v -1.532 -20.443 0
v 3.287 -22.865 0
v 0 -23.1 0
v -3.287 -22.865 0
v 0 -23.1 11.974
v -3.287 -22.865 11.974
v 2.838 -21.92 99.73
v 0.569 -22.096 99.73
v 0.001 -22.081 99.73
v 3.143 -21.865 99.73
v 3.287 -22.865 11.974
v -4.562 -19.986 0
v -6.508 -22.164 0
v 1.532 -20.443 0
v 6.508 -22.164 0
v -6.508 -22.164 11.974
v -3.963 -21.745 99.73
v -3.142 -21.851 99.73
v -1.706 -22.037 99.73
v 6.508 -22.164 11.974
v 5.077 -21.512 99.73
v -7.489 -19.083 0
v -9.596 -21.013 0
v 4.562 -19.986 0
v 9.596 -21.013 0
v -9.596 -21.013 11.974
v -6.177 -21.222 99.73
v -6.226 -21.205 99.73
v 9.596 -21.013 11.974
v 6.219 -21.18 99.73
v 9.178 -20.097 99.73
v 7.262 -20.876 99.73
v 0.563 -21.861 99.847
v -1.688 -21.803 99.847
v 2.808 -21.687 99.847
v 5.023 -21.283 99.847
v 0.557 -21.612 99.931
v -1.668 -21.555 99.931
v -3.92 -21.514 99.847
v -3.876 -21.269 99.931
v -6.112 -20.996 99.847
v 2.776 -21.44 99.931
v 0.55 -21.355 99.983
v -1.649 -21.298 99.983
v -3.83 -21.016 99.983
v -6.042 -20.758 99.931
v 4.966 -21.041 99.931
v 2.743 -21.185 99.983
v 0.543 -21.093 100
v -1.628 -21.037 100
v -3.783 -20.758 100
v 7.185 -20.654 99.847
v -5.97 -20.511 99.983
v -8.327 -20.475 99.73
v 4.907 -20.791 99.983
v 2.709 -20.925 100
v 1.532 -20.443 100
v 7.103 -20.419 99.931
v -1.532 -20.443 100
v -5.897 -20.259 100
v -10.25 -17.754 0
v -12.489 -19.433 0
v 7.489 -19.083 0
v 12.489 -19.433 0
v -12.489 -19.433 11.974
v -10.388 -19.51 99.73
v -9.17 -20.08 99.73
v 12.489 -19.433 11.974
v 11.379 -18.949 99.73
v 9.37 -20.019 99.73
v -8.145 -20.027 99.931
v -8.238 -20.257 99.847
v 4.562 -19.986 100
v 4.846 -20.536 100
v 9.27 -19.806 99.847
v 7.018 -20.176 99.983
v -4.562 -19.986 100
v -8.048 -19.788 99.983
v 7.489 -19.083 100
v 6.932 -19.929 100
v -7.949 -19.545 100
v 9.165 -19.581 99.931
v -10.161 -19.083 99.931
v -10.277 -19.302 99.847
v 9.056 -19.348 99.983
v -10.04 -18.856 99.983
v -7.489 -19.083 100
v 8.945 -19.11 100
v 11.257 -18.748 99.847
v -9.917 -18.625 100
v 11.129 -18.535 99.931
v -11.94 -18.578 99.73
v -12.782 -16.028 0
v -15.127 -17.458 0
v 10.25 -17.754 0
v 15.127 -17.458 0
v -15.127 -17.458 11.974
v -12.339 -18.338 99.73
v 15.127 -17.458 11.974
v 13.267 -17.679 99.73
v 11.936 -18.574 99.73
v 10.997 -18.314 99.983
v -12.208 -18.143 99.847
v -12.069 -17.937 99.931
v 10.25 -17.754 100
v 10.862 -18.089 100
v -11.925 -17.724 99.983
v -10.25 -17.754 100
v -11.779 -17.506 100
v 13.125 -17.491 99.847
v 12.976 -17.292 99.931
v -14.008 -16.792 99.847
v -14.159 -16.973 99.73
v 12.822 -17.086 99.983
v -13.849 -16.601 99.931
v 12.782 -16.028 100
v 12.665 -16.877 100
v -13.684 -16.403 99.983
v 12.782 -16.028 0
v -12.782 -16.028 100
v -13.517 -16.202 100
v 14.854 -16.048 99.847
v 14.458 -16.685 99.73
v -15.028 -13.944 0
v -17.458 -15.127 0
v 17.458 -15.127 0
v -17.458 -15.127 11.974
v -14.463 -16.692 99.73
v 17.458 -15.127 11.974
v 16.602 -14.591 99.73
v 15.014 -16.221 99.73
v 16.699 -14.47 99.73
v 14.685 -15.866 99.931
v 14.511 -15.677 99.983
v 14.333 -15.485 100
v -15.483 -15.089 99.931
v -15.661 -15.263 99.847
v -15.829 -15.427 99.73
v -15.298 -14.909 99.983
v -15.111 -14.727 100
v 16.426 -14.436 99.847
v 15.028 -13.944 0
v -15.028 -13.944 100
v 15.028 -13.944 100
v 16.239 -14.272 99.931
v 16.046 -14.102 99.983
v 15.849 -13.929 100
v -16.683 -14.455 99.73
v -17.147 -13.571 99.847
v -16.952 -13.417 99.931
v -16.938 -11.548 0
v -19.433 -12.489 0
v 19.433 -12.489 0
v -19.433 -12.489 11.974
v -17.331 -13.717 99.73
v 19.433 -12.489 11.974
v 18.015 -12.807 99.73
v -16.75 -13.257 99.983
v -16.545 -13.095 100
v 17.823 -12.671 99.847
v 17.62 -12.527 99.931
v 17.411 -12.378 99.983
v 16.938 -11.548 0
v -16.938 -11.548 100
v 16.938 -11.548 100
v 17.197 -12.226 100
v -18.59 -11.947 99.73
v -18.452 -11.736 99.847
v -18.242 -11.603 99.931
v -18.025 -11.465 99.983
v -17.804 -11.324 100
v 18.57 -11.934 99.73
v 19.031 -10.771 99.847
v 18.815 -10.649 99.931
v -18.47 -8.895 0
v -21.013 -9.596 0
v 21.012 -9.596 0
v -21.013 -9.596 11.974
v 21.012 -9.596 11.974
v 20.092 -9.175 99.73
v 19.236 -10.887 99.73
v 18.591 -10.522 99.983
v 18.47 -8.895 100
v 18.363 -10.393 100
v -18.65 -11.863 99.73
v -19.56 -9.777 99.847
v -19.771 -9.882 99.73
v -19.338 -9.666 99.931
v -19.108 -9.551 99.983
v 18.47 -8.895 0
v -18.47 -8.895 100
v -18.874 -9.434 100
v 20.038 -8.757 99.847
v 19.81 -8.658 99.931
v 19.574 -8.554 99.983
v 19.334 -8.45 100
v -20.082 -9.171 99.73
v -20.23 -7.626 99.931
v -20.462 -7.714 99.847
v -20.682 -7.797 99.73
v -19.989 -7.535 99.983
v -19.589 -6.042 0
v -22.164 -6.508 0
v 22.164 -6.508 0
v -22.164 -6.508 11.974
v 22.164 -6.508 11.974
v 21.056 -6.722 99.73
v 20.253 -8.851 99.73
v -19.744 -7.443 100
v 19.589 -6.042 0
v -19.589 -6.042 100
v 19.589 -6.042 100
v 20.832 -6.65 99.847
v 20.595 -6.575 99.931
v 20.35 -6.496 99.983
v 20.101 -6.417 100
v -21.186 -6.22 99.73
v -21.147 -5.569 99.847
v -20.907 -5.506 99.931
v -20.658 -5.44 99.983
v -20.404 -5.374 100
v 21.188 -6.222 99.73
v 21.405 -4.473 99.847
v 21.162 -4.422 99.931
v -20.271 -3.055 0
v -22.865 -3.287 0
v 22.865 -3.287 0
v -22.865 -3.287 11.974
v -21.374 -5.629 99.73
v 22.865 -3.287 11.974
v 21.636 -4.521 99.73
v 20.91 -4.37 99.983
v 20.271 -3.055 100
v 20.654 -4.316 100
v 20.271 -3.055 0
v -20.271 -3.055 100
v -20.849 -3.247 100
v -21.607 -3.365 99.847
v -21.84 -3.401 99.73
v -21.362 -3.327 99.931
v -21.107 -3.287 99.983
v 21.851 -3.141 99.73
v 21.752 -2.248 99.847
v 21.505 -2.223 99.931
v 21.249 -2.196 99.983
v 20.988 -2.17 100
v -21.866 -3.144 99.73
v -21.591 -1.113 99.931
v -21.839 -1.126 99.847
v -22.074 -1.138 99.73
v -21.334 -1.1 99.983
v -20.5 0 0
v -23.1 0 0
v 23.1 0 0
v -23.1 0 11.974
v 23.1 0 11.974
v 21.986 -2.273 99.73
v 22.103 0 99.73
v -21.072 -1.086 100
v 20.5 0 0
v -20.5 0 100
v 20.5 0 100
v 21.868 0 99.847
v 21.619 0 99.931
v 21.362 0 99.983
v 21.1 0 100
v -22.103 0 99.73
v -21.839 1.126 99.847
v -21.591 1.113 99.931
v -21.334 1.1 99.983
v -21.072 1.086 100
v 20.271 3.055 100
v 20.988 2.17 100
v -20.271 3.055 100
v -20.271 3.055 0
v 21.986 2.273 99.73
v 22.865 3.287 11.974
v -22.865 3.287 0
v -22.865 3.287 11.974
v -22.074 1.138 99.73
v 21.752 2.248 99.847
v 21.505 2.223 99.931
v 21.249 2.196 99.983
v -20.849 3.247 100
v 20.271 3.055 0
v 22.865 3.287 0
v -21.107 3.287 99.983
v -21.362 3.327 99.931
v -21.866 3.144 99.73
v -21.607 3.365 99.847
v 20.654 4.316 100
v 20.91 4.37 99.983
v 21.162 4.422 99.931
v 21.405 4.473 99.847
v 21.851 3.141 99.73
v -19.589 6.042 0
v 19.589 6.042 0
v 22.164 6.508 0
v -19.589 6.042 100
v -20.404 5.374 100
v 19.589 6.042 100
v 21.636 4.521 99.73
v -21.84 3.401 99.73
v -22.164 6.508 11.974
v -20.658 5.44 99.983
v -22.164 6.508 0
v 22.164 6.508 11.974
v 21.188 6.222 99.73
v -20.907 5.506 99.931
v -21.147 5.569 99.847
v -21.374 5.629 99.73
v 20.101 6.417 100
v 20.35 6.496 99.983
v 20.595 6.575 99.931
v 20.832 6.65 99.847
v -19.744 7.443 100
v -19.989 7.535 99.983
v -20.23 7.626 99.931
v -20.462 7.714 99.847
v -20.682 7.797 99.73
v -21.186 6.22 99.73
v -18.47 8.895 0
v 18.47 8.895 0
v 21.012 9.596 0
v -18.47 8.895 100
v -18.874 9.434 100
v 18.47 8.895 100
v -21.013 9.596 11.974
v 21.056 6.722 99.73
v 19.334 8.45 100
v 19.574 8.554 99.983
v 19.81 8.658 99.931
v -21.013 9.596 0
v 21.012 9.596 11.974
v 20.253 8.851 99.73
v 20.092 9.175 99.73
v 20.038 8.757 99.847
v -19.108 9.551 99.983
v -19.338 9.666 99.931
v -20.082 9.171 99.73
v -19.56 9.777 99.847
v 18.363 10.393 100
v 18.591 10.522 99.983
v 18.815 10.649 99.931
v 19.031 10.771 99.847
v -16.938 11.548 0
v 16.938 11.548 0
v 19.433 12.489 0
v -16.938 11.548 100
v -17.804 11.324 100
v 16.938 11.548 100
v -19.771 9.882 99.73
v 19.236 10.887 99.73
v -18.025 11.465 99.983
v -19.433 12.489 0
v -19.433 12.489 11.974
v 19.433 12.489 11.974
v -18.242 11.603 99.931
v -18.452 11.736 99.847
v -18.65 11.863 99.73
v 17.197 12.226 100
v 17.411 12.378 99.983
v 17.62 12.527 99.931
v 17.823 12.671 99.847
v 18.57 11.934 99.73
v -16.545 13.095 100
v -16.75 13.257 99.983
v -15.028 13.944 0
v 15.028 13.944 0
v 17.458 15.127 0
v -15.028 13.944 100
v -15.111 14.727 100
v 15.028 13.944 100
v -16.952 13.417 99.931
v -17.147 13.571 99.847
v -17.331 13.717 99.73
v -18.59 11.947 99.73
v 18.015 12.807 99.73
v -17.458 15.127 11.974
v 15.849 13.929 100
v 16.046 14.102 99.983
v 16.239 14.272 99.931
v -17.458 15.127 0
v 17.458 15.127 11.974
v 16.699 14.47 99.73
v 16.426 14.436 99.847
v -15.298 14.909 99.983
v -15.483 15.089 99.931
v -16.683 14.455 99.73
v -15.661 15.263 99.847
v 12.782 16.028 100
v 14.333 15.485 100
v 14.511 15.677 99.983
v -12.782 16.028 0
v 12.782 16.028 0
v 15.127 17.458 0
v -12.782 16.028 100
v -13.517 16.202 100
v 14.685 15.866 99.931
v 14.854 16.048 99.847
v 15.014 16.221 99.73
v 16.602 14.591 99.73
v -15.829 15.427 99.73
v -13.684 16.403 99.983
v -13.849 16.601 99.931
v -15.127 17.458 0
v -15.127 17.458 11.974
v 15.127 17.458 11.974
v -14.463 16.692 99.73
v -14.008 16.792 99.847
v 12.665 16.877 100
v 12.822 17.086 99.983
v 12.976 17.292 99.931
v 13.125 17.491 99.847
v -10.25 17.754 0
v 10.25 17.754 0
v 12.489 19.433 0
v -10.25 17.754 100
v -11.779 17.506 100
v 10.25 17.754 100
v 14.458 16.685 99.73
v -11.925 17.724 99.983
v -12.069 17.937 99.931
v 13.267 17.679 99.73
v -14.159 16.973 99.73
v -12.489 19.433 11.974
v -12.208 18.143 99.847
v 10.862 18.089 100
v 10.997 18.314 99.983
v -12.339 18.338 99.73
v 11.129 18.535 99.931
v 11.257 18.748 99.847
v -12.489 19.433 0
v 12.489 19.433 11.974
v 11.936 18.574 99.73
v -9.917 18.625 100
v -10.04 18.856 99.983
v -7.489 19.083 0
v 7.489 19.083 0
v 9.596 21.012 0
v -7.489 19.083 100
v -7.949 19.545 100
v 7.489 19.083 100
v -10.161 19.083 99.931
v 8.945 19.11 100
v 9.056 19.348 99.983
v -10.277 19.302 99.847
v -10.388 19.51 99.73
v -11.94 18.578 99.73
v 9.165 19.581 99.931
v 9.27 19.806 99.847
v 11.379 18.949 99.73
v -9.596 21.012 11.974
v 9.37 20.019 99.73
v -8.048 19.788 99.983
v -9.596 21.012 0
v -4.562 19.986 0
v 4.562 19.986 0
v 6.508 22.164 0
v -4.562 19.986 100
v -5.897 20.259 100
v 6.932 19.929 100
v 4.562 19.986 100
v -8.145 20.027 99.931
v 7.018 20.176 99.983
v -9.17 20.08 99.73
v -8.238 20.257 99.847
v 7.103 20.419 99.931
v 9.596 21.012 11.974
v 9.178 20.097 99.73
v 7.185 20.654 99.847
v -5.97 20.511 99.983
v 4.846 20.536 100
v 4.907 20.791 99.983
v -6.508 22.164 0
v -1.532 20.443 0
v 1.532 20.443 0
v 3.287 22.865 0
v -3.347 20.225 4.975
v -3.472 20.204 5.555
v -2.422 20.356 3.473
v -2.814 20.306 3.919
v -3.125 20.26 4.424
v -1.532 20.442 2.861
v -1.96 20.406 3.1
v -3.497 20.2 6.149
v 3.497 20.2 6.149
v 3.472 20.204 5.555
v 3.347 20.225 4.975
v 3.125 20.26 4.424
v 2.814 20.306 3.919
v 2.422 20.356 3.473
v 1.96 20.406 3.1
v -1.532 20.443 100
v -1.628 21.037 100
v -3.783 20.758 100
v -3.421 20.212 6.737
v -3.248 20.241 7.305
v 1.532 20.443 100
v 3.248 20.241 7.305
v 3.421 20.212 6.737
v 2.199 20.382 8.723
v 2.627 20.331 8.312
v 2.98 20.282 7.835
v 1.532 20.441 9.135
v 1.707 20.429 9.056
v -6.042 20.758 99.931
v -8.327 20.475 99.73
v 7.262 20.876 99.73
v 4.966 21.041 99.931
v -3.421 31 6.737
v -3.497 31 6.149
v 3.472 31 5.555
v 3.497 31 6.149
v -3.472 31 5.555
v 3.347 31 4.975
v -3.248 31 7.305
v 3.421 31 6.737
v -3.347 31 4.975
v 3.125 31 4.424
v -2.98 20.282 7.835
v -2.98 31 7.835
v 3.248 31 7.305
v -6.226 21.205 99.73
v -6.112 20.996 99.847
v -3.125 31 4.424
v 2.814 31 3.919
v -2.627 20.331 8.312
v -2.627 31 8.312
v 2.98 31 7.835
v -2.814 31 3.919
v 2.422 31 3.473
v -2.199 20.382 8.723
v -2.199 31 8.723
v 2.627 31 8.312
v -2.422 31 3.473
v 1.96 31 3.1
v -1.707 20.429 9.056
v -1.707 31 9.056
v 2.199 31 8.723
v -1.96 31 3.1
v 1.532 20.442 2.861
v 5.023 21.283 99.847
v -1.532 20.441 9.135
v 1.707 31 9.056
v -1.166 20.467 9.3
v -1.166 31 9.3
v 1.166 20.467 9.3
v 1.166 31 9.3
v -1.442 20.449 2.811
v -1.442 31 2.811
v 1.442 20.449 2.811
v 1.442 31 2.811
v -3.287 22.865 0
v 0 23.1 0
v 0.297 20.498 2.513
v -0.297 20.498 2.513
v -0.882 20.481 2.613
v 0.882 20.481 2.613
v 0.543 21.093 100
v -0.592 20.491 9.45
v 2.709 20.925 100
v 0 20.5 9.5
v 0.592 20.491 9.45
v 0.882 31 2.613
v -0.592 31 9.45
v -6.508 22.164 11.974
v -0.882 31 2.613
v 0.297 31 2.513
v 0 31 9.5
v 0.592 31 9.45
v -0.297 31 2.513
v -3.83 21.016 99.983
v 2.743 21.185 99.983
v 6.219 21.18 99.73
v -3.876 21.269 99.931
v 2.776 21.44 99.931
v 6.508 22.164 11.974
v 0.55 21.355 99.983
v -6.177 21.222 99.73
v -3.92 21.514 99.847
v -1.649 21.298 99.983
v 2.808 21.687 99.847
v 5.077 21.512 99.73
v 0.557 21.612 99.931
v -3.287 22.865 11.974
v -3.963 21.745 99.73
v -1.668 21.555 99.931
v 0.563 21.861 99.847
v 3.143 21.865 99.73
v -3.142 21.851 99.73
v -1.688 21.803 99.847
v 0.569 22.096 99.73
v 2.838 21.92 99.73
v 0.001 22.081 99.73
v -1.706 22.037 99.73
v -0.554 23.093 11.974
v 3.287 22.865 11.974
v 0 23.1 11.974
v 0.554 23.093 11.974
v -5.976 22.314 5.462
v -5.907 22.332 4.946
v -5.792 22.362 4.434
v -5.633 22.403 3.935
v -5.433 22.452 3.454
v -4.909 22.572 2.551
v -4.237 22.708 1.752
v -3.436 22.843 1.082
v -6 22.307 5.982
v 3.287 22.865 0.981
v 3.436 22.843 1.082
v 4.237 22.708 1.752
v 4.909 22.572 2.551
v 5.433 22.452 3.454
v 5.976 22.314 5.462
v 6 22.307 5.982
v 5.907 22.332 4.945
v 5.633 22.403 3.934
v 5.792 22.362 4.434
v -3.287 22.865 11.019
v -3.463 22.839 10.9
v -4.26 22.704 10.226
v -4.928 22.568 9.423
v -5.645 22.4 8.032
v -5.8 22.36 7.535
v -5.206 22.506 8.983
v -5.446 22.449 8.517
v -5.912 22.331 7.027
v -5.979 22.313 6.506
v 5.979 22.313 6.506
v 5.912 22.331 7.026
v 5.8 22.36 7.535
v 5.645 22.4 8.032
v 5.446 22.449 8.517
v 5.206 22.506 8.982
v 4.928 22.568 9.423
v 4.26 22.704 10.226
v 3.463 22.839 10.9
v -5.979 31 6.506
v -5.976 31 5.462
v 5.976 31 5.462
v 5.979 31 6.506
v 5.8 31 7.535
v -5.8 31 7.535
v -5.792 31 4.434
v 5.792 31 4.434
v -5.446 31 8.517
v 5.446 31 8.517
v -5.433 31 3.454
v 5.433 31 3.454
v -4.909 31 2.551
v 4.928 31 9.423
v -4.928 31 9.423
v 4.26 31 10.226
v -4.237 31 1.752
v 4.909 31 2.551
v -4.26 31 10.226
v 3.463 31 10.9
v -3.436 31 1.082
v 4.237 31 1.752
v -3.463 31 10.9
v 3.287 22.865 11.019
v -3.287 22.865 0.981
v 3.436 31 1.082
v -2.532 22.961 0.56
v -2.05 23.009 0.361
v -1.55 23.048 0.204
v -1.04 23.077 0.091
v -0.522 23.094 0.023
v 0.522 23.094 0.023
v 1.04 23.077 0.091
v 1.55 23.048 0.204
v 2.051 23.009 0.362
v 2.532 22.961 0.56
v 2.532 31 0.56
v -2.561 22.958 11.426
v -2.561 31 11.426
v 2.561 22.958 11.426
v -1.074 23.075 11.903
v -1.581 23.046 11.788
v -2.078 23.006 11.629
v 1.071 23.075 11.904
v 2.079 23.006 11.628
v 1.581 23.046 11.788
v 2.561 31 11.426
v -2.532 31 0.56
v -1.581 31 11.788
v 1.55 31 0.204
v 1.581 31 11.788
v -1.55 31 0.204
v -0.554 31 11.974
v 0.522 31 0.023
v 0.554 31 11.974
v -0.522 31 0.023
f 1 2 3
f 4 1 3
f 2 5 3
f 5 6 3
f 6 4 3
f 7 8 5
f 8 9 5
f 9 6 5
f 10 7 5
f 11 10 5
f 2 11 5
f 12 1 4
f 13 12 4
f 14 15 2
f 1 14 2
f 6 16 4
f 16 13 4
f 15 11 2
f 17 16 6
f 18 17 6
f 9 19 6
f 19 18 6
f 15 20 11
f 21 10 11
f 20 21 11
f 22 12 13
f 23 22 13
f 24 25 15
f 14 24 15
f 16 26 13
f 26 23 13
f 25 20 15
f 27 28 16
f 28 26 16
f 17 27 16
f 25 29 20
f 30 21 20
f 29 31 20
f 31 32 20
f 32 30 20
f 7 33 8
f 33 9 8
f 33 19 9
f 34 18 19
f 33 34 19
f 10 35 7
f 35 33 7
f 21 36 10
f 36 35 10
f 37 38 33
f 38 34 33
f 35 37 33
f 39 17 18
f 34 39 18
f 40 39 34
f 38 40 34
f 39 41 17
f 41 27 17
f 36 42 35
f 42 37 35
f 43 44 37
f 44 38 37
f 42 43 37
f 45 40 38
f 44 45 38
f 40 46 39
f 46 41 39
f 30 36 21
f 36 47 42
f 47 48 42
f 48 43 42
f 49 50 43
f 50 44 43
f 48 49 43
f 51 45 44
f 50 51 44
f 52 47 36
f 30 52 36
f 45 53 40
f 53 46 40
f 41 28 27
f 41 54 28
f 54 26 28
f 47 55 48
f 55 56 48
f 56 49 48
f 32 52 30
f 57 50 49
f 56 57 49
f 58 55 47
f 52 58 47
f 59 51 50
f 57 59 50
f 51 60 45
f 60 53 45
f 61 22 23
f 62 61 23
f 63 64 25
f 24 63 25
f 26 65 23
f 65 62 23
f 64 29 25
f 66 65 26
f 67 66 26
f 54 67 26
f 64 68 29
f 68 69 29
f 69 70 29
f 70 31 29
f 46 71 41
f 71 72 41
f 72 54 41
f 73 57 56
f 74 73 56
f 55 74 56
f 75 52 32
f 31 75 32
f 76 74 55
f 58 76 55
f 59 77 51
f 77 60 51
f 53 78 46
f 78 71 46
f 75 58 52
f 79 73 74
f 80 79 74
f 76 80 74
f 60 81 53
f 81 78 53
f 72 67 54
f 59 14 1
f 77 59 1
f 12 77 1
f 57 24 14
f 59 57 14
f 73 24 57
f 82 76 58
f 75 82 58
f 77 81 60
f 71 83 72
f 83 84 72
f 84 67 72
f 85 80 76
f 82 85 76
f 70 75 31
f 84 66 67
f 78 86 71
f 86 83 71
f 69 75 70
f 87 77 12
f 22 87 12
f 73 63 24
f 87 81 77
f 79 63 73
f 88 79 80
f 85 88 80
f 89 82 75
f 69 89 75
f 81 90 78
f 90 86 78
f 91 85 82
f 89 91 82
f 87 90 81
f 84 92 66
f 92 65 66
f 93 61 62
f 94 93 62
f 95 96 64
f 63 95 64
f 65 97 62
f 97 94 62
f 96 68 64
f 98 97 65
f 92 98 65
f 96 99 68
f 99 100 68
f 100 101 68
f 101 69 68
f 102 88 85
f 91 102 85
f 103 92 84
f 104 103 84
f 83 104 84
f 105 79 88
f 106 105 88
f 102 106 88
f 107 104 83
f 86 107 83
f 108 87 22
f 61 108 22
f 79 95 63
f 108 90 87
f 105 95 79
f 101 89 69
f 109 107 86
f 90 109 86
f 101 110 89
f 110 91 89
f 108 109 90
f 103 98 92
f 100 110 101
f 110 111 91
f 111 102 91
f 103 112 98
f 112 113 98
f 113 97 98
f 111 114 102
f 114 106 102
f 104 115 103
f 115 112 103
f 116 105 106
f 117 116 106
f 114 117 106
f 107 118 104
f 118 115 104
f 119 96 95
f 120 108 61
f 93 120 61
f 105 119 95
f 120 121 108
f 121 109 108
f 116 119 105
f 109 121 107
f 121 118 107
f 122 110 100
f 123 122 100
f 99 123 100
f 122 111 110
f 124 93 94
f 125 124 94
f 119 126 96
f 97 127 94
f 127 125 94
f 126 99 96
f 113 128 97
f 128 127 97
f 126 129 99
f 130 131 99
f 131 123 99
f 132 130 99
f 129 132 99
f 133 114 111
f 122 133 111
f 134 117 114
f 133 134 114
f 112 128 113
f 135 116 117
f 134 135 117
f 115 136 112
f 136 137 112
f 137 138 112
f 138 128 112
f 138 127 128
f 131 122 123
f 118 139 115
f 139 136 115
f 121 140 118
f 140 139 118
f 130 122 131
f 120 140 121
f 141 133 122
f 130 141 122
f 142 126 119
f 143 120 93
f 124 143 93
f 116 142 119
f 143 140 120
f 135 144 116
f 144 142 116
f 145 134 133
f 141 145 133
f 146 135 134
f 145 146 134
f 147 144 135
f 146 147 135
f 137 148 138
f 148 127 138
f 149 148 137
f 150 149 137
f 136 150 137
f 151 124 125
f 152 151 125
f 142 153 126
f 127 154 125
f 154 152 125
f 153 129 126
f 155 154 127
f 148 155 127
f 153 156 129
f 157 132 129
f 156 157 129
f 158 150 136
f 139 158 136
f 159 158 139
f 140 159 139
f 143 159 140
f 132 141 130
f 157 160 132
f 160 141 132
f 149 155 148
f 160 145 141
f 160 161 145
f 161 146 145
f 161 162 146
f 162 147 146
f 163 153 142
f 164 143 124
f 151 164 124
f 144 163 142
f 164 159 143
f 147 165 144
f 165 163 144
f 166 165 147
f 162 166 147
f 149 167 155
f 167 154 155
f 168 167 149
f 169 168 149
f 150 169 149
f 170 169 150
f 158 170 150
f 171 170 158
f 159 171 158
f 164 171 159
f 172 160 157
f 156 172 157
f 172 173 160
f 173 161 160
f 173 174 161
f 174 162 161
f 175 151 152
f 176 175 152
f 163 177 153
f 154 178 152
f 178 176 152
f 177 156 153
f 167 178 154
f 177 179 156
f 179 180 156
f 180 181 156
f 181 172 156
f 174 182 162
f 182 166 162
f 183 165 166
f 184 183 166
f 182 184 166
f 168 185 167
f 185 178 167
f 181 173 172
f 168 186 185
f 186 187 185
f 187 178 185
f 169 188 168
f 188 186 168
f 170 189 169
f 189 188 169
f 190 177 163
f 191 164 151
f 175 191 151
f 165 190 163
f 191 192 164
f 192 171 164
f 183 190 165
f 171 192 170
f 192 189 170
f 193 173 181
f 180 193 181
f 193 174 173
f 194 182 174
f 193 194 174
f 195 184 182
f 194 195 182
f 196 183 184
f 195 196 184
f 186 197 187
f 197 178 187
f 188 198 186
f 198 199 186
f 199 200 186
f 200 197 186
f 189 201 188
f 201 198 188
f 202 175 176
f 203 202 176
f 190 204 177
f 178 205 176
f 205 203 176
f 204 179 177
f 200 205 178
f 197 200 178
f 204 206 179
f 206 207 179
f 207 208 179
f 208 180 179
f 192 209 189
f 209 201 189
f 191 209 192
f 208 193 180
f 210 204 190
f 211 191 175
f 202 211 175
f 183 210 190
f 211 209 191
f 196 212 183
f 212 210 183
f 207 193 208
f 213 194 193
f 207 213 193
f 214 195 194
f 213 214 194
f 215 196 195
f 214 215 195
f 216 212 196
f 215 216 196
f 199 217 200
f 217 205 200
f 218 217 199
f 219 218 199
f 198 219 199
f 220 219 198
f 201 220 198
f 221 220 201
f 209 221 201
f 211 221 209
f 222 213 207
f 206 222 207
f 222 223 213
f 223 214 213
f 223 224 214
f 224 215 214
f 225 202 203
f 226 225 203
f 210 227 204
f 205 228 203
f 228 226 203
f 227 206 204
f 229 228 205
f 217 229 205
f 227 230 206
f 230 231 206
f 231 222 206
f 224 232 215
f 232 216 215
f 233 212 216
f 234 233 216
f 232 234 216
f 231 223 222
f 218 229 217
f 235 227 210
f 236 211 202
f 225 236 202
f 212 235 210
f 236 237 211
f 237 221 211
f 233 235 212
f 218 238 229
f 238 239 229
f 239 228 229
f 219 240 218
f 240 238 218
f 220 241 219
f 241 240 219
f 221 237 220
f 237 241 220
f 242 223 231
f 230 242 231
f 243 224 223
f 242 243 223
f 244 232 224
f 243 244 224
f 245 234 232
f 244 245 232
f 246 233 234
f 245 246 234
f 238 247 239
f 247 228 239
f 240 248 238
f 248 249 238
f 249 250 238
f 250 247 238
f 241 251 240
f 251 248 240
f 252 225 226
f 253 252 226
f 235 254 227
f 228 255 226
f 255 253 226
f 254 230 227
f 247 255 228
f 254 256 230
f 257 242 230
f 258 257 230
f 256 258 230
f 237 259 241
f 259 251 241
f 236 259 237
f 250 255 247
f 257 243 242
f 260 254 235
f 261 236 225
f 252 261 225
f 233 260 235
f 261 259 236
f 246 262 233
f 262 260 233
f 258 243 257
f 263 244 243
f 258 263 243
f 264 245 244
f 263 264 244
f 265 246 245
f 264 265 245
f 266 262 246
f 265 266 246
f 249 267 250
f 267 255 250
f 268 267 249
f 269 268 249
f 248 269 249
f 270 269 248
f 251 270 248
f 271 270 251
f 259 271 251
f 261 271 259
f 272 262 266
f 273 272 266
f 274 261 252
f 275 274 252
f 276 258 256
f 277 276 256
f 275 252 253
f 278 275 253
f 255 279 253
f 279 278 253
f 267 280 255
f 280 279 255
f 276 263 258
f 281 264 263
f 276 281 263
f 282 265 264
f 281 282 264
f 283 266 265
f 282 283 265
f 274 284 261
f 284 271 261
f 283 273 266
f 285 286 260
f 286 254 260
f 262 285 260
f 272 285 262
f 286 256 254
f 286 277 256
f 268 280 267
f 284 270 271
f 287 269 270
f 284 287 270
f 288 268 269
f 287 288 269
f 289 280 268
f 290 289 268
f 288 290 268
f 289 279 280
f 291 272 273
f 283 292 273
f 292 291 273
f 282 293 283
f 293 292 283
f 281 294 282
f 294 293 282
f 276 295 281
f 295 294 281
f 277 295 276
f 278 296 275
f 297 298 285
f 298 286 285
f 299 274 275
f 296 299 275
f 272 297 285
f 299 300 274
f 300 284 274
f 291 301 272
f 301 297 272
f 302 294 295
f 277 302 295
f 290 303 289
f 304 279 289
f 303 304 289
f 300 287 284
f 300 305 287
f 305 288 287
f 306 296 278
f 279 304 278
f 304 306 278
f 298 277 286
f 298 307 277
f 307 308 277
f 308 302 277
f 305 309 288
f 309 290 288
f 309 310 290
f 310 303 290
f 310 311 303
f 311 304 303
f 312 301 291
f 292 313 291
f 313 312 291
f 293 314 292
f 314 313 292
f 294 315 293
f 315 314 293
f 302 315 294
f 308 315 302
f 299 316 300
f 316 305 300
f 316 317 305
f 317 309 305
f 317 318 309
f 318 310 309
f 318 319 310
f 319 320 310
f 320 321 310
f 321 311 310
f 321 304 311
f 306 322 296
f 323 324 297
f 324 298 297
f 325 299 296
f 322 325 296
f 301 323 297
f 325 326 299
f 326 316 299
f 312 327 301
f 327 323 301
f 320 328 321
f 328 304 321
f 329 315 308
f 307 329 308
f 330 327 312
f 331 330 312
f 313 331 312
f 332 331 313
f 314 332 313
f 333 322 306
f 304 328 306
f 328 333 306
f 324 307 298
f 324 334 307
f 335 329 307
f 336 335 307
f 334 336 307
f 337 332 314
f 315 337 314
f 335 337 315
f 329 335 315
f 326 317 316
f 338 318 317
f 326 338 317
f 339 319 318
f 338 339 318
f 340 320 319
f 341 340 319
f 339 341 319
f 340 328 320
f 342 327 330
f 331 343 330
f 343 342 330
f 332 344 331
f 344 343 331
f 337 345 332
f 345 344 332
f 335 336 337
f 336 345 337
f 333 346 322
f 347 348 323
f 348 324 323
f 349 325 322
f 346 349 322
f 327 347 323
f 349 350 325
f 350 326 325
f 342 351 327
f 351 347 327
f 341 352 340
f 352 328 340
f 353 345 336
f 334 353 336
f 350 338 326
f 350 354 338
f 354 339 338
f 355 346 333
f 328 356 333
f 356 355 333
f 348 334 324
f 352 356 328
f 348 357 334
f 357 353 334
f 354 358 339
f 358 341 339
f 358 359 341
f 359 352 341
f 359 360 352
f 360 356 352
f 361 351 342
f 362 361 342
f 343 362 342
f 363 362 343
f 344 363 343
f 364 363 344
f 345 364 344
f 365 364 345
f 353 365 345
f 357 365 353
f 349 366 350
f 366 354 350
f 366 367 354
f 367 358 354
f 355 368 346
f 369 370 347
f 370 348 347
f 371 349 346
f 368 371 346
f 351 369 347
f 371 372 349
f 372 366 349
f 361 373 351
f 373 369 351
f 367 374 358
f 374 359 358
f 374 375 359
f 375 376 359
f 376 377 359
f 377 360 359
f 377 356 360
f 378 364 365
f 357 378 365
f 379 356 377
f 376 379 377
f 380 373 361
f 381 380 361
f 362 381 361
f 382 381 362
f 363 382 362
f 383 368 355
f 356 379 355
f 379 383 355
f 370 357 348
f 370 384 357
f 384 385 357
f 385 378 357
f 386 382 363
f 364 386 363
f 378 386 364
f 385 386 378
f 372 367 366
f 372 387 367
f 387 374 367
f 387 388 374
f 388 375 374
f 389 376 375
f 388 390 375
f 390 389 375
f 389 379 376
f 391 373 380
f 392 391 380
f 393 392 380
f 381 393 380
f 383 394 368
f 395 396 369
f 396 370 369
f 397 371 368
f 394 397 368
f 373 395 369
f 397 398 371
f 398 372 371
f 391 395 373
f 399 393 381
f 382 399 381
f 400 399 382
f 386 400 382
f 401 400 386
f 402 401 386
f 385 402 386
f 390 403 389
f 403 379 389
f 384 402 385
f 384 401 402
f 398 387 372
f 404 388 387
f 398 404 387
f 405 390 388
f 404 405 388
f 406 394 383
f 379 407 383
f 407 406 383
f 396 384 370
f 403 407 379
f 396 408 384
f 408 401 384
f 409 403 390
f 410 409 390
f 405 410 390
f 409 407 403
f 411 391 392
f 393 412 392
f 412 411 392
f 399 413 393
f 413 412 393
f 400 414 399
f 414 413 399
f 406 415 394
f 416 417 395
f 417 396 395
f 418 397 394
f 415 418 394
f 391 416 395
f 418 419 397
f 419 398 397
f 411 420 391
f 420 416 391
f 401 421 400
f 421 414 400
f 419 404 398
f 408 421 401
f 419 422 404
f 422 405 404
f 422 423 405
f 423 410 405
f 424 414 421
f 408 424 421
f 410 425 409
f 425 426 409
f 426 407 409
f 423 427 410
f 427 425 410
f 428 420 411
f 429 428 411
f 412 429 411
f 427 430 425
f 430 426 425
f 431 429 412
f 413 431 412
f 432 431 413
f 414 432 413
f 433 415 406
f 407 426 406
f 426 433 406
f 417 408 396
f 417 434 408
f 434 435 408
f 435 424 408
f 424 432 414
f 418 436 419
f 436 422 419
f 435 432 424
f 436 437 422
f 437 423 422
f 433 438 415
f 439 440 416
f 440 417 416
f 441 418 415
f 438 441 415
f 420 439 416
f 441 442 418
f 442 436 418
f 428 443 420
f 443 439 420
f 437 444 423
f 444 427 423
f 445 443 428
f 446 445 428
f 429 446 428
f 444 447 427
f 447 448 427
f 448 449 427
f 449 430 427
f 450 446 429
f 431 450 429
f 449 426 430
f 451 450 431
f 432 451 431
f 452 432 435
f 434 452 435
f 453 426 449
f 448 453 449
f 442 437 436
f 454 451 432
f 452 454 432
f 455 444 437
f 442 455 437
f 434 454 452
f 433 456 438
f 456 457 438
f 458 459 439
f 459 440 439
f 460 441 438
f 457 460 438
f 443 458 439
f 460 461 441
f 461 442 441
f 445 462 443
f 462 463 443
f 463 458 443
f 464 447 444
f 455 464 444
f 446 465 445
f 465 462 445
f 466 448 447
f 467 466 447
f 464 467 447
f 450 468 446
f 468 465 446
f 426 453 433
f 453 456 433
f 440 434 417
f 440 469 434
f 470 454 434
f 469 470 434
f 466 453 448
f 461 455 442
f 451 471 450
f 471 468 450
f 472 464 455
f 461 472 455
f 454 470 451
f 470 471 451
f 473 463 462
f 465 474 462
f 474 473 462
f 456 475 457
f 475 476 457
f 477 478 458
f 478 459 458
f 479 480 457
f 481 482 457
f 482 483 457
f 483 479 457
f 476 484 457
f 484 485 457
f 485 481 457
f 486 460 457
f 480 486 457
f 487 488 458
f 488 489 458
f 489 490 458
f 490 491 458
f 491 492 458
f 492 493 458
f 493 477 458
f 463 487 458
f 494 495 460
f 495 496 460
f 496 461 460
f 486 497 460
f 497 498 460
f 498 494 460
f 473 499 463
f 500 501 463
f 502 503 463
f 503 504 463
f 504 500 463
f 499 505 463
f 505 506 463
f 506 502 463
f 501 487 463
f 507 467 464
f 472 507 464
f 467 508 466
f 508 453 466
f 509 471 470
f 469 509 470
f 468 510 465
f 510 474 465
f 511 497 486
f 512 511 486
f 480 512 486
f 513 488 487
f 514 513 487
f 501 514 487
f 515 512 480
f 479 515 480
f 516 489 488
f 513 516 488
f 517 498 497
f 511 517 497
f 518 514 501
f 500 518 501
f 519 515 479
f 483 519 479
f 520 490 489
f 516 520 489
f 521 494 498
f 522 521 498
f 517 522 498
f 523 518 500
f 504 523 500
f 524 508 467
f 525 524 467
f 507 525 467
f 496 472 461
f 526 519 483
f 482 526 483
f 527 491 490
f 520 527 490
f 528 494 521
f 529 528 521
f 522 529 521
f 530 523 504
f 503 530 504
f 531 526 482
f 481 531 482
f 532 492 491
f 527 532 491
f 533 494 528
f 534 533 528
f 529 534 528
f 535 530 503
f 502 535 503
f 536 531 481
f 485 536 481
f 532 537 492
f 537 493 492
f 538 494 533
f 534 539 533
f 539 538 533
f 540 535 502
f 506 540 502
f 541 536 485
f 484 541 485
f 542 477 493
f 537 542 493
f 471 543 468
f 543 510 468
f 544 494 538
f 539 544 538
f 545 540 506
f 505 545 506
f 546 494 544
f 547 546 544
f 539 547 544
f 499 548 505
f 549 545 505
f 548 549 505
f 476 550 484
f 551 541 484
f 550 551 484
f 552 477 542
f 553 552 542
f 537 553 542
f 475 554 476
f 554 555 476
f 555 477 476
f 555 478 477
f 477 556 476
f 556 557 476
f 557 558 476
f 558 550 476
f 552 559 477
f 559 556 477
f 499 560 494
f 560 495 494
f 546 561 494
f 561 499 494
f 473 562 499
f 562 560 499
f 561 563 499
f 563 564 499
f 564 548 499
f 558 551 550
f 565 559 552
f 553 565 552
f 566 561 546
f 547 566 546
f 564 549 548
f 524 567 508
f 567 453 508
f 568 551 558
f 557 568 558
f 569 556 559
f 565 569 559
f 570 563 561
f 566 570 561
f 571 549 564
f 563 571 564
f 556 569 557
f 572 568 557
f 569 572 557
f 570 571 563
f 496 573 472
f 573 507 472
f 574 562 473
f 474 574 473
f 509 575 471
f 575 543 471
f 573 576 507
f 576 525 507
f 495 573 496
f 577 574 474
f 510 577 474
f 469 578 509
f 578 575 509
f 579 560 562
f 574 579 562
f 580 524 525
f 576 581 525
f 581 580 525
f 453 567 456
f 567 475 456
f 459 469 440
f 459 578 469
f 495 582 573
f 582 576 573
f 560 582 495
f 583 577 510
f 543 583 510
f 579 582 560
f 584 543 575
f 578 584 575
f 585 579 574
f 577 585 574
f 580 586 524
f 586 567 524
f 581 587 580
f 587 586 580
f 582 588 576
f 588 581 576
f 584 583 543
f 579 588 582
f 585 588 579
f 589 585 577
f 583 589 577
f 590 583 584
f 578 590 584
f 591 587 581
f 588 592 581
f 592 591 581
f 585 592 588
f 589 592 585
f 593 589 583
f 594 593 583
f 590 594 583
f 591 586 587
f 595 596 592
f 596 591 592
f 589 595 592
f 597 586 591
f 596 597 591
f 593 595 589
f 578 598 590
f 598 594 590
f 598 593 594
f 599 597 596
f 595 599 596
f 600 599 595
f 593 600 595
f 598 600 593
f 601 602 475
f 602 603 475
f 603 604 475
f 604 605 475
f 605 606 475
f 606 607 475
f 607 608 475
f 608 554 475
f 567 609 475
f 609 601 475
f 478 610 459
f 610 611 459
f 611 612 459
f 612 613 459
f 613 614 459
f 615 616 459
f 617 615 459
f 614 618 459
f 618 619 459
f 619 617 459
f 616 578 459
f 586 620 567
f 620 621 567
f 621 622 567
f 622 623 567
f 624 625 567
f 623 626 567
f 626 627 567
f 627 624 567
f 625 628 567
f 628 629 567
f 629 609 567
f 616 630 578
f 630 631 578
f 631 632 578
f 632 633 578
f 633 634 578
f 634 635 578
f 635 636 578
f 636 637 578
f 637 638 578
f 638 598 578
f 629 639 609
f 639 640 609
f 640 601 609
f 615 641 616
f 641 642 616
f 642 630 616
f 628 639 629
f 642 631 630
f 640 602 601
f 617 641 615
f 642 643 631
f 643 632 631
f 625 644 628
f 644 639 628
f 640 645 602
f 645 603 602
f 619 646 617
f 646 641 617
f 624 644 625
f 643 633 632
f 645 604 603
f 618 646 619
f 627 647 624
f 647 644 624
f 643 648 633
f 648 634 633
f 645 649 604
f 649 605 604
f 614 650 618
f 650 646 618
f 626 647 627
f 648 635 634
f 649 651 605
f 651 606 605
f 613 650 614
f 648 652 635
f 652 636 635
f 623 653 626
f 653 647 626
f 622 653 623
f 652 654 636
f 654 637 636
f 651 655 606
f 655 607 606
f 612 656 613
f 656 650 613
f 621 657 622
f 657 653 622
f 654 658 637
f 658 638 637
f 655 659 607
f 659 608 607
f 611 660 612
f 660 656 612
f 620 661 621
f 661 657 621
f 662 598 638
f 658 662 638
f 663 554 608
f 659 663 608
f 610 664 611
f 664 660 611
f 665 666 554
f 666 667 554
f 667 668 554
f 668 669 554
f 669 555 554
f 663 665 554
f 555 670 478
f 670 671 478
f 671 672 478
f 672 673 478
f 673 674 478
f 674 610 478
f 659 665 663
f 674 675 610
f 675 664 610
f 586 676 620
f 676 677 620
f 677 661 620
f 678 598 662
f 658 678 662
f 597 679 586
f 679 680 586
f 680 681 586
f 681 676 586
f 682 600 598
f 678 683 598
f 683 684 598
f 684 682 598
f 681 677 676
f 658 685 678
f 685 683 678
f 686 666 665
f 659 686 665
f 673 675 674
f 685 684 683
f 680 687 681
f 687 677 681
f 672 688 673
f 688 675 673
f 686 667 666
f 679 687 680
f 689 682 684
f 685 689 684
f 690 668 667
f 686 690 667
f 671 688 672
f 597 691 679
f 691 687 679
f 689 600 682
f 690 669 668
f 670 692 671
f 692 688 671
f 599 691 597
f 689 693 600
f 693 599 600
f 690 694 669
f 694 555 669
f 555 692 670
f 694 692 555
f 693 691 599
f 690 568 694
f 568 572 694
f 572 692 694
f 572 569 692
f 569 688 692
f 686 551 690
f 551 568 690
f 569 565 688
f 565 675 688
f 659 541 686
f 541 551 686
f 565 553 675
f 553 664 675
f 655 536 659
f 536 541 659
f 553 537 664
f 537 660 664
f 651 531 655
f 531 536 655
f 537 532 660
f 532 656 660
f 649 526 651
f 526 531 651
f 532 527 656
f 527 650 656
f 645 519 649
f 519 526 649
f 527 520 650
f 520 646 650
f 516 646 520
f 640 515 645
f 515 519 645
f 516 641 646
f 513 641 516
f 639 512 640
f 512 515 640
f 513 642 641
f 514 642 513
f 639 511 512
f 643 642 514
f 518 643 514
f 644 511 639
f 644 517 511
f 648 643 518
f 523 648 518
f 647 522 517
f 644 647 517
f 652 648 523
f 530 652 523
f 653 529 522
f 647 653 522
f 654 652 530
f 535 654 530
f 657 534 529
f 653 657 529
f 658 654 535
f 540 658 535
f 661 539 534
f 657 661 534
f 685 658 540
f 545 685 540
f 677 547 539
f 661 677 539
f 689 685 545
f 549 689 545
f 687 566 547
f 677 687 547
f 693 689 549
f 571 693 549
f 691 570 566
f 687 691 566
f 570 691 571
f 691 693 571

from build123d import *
from build123d.topology import SkipClean

# Parameters (mm, degrees)
SKETCH_1_R          = 23.1
SKETCH_1_R_2        = 20.5
EXTRUDE_1_DEPTH     = 100
SKETCH_2_R          = 6
EXTRUDE_2_DEPTH     = 10
SKETCH_3_R          = 3.5
CUT_EXTRUDE_1_DEPTH = 20
FILLET_1_R          = 2


with BuildPart() as part:
    # 草图1 → 凸台-拉伸1 (new body)
    with BuildSketch(Plane.XY):
        with Locations(Location((0, 0, 0), (0, 0, 180))):
            Circle(SKETCH_1_R)
        with Locations(Location((0, 0, 0), (0, 0, 180))):
            Circle(SKETCH_1_R_2, mode=Mode.SUBTRACT)
    extrude(amount=EXTRUDE_1_DEPTH)

    # 草图2 → 凸台-拉伸2 (add)
    with BuildSketch(Plane(origin=(0, 21, 0), x_dir=(1, 0, 0), z_dir=(0, 1, 0))):
        with Locations(Location((0, -6, 0), (0, 0, 270))):
            Circle(SKETCH_2_R)
    extrude(amount=EXTRUDE_2_DEPTH)

    # 草图3 → 切除-拉伸1 (cut)
    with BuildSketch(Plane(origin=(0, 31, 0), x_dir=(1, 0, 0), z_dir=(0, 1, 0))):
        with Locations(Location((0, -6, 0), (0, 0, 270))):
            Circle(SKETCH_3_R)
    extrude(amount=-CUT_EXTRUDE_1_DEPTH, mode=Mode.SUBTRACT)

    # 圆角1
    fillet_1_edges = [part.edges().sort_by_distance(p)[0] for p in [
        (23.1, 0, 100),
    ]]
    fillet(fillet_1_edges, radius=FILLET_1_R)

    # 草图4 → 切除-旋转1 (revolve, cut)
    with SkipClean():  # the faces are left unmerged after this step: merging them gives an invalid solid
        with BuildSketch(Plane(origin=(0, 0, 0), x_dir=(1, 0, 0), z_dir=(0, 1, 0))):
            Polygon((23.1, -11.974371638), (22.1, -100), (36.719914386, -100), (36.719914386, -11.974371638), align=None)
        revolve(axis=Axis((0, 0, 100), (0, 0, -1)), mode=Mode.SUBTRACT)


solid = part.part
